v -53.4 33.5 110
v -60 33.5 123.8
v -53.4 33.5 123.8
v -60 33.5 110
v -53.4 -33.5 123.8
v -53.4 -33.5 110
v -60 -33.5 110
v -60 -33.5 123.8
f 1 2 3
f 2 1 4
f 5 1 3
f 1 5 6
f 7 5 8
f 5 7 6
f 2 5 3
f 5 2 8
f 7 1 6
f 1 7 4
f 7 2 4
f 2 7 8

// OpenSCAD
// Generado automáticamente por run_collision_checks.py — NO editar a mano.
// Intersección de dos cuerpos mecánicos para comprobar colisión.
include <../../components/assembly_instances.scad>;
$fn = 24;
intersection()
{
    noctuaInstanceKeepout();
    esp32InstanceBody();
}
